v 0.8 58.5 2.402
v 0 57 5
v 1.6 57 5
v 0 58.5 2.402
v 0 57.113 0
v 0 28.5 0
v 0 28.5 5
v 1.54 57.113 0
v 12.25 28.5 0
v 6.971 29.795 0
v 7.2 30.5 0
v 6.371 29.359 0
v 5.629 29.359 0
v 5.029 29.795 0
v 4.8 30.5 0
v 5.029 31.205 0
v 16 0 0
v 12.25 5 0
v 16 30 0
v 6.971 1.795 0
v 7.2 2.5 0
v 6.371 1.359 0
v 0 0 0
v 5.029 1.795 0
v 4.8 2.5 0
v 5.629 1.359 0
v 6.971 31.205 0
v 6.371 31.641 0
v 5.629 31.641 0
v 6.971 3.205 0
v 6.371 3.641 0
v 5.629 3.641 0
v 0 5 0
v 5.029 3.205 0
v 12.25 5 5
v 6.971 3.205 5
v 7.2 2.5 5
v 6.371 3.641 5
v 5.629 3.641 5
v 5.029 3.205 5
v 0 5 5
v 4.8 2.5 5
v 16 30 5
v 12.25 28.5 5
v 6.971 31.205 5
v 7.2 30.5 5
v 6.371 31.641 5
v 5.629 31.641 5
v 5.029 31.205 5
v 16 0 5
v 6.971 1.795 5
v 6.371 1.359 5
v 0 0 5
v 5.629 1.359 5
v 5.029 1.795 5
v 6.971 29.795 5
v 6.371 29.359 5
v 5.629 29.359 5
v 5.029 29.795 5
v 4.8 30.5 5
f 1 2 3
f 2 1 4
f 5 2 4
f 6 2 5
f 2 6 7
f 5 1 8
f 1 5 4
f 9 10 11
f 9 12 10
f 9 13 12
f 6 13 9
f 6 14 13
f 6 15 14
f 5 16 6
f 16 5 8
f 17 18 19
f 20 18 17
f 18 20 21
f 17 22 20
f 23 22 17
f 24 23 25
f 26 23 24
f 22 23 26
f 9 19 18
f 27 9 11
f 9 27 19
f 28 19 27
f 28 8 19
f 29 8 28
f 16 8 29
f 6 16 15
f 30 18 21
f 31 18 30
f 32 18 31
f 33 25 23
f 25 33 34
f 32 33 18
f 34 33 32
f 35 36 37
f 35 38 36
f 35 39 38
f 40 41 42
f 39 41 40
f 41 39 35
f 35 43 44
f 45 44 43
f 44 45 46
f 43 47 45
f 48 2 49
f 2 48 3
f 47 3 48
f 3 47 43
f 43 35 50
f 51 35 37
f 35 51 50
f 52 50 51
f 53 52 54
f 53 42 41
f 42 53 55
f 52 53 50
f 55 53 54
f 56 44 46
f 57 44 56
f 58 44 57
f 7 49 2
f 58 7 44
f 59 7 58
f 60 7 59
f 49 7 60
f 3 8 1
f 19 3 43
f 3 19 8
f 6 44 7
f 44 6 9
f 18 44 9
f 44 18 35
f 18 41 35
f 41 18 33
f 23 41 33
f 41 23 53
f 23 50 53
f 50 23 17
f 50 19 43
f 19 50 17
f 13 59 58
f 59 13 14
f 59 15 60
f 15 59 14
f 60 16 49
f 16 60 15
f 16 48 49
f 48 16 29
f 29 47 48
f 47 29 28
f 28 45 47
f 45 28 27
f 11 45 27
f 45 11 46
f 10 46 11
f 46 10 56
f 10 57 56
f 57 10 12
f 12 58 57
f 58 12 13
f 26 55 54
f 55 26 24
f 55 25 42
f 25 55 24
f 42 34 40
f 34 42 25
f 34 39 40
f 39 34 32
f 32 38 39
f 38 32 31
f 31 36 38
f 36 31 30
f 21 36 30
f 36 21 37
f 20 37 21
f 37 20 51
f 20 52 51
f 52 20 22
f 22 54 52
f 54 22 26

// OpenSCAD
//////////////////////////
// MOTOR - HOLDER

module screws() {

    radius = 1.2;
    distance = 28;

    translate([0,0])
        circle(r=radius, $fn=10);
    translate([0,distance])
        circle(r=radius, $fn=10);
}

module body() {

    width = 12.5;
    length = 23.5;

    translate([-width/2, 2.5])
        square([width, length]);
}

module motor() {
    screws();
    body();
}

//////////////////////////
// LEG

module leg() {
    thickness = 5;
    length = 60;
    width = 16;
    points = [[0,0],[0,length],[width, length/2],[width,0]];

    linear_extrude(height=thickness)
        difference() {
            polygon(points=points);
            translate([6, 2.5])
                motor();
        }
}

module schampfer() {
    y = 57;
    x = 0;
    z = 0;
    translate([x,y,z+5])
        rotate([-60,0,0])
            linear_extrude(height=5)
                square([35, 35]);
    translate([x,y+3,z-5])
        rotate([60,0,0])
            linear_extrude(height=5)
                square([35, 35]);
}

//////////////////////////
// RENDER

difference() {
    leg();
    schampfer();
}
